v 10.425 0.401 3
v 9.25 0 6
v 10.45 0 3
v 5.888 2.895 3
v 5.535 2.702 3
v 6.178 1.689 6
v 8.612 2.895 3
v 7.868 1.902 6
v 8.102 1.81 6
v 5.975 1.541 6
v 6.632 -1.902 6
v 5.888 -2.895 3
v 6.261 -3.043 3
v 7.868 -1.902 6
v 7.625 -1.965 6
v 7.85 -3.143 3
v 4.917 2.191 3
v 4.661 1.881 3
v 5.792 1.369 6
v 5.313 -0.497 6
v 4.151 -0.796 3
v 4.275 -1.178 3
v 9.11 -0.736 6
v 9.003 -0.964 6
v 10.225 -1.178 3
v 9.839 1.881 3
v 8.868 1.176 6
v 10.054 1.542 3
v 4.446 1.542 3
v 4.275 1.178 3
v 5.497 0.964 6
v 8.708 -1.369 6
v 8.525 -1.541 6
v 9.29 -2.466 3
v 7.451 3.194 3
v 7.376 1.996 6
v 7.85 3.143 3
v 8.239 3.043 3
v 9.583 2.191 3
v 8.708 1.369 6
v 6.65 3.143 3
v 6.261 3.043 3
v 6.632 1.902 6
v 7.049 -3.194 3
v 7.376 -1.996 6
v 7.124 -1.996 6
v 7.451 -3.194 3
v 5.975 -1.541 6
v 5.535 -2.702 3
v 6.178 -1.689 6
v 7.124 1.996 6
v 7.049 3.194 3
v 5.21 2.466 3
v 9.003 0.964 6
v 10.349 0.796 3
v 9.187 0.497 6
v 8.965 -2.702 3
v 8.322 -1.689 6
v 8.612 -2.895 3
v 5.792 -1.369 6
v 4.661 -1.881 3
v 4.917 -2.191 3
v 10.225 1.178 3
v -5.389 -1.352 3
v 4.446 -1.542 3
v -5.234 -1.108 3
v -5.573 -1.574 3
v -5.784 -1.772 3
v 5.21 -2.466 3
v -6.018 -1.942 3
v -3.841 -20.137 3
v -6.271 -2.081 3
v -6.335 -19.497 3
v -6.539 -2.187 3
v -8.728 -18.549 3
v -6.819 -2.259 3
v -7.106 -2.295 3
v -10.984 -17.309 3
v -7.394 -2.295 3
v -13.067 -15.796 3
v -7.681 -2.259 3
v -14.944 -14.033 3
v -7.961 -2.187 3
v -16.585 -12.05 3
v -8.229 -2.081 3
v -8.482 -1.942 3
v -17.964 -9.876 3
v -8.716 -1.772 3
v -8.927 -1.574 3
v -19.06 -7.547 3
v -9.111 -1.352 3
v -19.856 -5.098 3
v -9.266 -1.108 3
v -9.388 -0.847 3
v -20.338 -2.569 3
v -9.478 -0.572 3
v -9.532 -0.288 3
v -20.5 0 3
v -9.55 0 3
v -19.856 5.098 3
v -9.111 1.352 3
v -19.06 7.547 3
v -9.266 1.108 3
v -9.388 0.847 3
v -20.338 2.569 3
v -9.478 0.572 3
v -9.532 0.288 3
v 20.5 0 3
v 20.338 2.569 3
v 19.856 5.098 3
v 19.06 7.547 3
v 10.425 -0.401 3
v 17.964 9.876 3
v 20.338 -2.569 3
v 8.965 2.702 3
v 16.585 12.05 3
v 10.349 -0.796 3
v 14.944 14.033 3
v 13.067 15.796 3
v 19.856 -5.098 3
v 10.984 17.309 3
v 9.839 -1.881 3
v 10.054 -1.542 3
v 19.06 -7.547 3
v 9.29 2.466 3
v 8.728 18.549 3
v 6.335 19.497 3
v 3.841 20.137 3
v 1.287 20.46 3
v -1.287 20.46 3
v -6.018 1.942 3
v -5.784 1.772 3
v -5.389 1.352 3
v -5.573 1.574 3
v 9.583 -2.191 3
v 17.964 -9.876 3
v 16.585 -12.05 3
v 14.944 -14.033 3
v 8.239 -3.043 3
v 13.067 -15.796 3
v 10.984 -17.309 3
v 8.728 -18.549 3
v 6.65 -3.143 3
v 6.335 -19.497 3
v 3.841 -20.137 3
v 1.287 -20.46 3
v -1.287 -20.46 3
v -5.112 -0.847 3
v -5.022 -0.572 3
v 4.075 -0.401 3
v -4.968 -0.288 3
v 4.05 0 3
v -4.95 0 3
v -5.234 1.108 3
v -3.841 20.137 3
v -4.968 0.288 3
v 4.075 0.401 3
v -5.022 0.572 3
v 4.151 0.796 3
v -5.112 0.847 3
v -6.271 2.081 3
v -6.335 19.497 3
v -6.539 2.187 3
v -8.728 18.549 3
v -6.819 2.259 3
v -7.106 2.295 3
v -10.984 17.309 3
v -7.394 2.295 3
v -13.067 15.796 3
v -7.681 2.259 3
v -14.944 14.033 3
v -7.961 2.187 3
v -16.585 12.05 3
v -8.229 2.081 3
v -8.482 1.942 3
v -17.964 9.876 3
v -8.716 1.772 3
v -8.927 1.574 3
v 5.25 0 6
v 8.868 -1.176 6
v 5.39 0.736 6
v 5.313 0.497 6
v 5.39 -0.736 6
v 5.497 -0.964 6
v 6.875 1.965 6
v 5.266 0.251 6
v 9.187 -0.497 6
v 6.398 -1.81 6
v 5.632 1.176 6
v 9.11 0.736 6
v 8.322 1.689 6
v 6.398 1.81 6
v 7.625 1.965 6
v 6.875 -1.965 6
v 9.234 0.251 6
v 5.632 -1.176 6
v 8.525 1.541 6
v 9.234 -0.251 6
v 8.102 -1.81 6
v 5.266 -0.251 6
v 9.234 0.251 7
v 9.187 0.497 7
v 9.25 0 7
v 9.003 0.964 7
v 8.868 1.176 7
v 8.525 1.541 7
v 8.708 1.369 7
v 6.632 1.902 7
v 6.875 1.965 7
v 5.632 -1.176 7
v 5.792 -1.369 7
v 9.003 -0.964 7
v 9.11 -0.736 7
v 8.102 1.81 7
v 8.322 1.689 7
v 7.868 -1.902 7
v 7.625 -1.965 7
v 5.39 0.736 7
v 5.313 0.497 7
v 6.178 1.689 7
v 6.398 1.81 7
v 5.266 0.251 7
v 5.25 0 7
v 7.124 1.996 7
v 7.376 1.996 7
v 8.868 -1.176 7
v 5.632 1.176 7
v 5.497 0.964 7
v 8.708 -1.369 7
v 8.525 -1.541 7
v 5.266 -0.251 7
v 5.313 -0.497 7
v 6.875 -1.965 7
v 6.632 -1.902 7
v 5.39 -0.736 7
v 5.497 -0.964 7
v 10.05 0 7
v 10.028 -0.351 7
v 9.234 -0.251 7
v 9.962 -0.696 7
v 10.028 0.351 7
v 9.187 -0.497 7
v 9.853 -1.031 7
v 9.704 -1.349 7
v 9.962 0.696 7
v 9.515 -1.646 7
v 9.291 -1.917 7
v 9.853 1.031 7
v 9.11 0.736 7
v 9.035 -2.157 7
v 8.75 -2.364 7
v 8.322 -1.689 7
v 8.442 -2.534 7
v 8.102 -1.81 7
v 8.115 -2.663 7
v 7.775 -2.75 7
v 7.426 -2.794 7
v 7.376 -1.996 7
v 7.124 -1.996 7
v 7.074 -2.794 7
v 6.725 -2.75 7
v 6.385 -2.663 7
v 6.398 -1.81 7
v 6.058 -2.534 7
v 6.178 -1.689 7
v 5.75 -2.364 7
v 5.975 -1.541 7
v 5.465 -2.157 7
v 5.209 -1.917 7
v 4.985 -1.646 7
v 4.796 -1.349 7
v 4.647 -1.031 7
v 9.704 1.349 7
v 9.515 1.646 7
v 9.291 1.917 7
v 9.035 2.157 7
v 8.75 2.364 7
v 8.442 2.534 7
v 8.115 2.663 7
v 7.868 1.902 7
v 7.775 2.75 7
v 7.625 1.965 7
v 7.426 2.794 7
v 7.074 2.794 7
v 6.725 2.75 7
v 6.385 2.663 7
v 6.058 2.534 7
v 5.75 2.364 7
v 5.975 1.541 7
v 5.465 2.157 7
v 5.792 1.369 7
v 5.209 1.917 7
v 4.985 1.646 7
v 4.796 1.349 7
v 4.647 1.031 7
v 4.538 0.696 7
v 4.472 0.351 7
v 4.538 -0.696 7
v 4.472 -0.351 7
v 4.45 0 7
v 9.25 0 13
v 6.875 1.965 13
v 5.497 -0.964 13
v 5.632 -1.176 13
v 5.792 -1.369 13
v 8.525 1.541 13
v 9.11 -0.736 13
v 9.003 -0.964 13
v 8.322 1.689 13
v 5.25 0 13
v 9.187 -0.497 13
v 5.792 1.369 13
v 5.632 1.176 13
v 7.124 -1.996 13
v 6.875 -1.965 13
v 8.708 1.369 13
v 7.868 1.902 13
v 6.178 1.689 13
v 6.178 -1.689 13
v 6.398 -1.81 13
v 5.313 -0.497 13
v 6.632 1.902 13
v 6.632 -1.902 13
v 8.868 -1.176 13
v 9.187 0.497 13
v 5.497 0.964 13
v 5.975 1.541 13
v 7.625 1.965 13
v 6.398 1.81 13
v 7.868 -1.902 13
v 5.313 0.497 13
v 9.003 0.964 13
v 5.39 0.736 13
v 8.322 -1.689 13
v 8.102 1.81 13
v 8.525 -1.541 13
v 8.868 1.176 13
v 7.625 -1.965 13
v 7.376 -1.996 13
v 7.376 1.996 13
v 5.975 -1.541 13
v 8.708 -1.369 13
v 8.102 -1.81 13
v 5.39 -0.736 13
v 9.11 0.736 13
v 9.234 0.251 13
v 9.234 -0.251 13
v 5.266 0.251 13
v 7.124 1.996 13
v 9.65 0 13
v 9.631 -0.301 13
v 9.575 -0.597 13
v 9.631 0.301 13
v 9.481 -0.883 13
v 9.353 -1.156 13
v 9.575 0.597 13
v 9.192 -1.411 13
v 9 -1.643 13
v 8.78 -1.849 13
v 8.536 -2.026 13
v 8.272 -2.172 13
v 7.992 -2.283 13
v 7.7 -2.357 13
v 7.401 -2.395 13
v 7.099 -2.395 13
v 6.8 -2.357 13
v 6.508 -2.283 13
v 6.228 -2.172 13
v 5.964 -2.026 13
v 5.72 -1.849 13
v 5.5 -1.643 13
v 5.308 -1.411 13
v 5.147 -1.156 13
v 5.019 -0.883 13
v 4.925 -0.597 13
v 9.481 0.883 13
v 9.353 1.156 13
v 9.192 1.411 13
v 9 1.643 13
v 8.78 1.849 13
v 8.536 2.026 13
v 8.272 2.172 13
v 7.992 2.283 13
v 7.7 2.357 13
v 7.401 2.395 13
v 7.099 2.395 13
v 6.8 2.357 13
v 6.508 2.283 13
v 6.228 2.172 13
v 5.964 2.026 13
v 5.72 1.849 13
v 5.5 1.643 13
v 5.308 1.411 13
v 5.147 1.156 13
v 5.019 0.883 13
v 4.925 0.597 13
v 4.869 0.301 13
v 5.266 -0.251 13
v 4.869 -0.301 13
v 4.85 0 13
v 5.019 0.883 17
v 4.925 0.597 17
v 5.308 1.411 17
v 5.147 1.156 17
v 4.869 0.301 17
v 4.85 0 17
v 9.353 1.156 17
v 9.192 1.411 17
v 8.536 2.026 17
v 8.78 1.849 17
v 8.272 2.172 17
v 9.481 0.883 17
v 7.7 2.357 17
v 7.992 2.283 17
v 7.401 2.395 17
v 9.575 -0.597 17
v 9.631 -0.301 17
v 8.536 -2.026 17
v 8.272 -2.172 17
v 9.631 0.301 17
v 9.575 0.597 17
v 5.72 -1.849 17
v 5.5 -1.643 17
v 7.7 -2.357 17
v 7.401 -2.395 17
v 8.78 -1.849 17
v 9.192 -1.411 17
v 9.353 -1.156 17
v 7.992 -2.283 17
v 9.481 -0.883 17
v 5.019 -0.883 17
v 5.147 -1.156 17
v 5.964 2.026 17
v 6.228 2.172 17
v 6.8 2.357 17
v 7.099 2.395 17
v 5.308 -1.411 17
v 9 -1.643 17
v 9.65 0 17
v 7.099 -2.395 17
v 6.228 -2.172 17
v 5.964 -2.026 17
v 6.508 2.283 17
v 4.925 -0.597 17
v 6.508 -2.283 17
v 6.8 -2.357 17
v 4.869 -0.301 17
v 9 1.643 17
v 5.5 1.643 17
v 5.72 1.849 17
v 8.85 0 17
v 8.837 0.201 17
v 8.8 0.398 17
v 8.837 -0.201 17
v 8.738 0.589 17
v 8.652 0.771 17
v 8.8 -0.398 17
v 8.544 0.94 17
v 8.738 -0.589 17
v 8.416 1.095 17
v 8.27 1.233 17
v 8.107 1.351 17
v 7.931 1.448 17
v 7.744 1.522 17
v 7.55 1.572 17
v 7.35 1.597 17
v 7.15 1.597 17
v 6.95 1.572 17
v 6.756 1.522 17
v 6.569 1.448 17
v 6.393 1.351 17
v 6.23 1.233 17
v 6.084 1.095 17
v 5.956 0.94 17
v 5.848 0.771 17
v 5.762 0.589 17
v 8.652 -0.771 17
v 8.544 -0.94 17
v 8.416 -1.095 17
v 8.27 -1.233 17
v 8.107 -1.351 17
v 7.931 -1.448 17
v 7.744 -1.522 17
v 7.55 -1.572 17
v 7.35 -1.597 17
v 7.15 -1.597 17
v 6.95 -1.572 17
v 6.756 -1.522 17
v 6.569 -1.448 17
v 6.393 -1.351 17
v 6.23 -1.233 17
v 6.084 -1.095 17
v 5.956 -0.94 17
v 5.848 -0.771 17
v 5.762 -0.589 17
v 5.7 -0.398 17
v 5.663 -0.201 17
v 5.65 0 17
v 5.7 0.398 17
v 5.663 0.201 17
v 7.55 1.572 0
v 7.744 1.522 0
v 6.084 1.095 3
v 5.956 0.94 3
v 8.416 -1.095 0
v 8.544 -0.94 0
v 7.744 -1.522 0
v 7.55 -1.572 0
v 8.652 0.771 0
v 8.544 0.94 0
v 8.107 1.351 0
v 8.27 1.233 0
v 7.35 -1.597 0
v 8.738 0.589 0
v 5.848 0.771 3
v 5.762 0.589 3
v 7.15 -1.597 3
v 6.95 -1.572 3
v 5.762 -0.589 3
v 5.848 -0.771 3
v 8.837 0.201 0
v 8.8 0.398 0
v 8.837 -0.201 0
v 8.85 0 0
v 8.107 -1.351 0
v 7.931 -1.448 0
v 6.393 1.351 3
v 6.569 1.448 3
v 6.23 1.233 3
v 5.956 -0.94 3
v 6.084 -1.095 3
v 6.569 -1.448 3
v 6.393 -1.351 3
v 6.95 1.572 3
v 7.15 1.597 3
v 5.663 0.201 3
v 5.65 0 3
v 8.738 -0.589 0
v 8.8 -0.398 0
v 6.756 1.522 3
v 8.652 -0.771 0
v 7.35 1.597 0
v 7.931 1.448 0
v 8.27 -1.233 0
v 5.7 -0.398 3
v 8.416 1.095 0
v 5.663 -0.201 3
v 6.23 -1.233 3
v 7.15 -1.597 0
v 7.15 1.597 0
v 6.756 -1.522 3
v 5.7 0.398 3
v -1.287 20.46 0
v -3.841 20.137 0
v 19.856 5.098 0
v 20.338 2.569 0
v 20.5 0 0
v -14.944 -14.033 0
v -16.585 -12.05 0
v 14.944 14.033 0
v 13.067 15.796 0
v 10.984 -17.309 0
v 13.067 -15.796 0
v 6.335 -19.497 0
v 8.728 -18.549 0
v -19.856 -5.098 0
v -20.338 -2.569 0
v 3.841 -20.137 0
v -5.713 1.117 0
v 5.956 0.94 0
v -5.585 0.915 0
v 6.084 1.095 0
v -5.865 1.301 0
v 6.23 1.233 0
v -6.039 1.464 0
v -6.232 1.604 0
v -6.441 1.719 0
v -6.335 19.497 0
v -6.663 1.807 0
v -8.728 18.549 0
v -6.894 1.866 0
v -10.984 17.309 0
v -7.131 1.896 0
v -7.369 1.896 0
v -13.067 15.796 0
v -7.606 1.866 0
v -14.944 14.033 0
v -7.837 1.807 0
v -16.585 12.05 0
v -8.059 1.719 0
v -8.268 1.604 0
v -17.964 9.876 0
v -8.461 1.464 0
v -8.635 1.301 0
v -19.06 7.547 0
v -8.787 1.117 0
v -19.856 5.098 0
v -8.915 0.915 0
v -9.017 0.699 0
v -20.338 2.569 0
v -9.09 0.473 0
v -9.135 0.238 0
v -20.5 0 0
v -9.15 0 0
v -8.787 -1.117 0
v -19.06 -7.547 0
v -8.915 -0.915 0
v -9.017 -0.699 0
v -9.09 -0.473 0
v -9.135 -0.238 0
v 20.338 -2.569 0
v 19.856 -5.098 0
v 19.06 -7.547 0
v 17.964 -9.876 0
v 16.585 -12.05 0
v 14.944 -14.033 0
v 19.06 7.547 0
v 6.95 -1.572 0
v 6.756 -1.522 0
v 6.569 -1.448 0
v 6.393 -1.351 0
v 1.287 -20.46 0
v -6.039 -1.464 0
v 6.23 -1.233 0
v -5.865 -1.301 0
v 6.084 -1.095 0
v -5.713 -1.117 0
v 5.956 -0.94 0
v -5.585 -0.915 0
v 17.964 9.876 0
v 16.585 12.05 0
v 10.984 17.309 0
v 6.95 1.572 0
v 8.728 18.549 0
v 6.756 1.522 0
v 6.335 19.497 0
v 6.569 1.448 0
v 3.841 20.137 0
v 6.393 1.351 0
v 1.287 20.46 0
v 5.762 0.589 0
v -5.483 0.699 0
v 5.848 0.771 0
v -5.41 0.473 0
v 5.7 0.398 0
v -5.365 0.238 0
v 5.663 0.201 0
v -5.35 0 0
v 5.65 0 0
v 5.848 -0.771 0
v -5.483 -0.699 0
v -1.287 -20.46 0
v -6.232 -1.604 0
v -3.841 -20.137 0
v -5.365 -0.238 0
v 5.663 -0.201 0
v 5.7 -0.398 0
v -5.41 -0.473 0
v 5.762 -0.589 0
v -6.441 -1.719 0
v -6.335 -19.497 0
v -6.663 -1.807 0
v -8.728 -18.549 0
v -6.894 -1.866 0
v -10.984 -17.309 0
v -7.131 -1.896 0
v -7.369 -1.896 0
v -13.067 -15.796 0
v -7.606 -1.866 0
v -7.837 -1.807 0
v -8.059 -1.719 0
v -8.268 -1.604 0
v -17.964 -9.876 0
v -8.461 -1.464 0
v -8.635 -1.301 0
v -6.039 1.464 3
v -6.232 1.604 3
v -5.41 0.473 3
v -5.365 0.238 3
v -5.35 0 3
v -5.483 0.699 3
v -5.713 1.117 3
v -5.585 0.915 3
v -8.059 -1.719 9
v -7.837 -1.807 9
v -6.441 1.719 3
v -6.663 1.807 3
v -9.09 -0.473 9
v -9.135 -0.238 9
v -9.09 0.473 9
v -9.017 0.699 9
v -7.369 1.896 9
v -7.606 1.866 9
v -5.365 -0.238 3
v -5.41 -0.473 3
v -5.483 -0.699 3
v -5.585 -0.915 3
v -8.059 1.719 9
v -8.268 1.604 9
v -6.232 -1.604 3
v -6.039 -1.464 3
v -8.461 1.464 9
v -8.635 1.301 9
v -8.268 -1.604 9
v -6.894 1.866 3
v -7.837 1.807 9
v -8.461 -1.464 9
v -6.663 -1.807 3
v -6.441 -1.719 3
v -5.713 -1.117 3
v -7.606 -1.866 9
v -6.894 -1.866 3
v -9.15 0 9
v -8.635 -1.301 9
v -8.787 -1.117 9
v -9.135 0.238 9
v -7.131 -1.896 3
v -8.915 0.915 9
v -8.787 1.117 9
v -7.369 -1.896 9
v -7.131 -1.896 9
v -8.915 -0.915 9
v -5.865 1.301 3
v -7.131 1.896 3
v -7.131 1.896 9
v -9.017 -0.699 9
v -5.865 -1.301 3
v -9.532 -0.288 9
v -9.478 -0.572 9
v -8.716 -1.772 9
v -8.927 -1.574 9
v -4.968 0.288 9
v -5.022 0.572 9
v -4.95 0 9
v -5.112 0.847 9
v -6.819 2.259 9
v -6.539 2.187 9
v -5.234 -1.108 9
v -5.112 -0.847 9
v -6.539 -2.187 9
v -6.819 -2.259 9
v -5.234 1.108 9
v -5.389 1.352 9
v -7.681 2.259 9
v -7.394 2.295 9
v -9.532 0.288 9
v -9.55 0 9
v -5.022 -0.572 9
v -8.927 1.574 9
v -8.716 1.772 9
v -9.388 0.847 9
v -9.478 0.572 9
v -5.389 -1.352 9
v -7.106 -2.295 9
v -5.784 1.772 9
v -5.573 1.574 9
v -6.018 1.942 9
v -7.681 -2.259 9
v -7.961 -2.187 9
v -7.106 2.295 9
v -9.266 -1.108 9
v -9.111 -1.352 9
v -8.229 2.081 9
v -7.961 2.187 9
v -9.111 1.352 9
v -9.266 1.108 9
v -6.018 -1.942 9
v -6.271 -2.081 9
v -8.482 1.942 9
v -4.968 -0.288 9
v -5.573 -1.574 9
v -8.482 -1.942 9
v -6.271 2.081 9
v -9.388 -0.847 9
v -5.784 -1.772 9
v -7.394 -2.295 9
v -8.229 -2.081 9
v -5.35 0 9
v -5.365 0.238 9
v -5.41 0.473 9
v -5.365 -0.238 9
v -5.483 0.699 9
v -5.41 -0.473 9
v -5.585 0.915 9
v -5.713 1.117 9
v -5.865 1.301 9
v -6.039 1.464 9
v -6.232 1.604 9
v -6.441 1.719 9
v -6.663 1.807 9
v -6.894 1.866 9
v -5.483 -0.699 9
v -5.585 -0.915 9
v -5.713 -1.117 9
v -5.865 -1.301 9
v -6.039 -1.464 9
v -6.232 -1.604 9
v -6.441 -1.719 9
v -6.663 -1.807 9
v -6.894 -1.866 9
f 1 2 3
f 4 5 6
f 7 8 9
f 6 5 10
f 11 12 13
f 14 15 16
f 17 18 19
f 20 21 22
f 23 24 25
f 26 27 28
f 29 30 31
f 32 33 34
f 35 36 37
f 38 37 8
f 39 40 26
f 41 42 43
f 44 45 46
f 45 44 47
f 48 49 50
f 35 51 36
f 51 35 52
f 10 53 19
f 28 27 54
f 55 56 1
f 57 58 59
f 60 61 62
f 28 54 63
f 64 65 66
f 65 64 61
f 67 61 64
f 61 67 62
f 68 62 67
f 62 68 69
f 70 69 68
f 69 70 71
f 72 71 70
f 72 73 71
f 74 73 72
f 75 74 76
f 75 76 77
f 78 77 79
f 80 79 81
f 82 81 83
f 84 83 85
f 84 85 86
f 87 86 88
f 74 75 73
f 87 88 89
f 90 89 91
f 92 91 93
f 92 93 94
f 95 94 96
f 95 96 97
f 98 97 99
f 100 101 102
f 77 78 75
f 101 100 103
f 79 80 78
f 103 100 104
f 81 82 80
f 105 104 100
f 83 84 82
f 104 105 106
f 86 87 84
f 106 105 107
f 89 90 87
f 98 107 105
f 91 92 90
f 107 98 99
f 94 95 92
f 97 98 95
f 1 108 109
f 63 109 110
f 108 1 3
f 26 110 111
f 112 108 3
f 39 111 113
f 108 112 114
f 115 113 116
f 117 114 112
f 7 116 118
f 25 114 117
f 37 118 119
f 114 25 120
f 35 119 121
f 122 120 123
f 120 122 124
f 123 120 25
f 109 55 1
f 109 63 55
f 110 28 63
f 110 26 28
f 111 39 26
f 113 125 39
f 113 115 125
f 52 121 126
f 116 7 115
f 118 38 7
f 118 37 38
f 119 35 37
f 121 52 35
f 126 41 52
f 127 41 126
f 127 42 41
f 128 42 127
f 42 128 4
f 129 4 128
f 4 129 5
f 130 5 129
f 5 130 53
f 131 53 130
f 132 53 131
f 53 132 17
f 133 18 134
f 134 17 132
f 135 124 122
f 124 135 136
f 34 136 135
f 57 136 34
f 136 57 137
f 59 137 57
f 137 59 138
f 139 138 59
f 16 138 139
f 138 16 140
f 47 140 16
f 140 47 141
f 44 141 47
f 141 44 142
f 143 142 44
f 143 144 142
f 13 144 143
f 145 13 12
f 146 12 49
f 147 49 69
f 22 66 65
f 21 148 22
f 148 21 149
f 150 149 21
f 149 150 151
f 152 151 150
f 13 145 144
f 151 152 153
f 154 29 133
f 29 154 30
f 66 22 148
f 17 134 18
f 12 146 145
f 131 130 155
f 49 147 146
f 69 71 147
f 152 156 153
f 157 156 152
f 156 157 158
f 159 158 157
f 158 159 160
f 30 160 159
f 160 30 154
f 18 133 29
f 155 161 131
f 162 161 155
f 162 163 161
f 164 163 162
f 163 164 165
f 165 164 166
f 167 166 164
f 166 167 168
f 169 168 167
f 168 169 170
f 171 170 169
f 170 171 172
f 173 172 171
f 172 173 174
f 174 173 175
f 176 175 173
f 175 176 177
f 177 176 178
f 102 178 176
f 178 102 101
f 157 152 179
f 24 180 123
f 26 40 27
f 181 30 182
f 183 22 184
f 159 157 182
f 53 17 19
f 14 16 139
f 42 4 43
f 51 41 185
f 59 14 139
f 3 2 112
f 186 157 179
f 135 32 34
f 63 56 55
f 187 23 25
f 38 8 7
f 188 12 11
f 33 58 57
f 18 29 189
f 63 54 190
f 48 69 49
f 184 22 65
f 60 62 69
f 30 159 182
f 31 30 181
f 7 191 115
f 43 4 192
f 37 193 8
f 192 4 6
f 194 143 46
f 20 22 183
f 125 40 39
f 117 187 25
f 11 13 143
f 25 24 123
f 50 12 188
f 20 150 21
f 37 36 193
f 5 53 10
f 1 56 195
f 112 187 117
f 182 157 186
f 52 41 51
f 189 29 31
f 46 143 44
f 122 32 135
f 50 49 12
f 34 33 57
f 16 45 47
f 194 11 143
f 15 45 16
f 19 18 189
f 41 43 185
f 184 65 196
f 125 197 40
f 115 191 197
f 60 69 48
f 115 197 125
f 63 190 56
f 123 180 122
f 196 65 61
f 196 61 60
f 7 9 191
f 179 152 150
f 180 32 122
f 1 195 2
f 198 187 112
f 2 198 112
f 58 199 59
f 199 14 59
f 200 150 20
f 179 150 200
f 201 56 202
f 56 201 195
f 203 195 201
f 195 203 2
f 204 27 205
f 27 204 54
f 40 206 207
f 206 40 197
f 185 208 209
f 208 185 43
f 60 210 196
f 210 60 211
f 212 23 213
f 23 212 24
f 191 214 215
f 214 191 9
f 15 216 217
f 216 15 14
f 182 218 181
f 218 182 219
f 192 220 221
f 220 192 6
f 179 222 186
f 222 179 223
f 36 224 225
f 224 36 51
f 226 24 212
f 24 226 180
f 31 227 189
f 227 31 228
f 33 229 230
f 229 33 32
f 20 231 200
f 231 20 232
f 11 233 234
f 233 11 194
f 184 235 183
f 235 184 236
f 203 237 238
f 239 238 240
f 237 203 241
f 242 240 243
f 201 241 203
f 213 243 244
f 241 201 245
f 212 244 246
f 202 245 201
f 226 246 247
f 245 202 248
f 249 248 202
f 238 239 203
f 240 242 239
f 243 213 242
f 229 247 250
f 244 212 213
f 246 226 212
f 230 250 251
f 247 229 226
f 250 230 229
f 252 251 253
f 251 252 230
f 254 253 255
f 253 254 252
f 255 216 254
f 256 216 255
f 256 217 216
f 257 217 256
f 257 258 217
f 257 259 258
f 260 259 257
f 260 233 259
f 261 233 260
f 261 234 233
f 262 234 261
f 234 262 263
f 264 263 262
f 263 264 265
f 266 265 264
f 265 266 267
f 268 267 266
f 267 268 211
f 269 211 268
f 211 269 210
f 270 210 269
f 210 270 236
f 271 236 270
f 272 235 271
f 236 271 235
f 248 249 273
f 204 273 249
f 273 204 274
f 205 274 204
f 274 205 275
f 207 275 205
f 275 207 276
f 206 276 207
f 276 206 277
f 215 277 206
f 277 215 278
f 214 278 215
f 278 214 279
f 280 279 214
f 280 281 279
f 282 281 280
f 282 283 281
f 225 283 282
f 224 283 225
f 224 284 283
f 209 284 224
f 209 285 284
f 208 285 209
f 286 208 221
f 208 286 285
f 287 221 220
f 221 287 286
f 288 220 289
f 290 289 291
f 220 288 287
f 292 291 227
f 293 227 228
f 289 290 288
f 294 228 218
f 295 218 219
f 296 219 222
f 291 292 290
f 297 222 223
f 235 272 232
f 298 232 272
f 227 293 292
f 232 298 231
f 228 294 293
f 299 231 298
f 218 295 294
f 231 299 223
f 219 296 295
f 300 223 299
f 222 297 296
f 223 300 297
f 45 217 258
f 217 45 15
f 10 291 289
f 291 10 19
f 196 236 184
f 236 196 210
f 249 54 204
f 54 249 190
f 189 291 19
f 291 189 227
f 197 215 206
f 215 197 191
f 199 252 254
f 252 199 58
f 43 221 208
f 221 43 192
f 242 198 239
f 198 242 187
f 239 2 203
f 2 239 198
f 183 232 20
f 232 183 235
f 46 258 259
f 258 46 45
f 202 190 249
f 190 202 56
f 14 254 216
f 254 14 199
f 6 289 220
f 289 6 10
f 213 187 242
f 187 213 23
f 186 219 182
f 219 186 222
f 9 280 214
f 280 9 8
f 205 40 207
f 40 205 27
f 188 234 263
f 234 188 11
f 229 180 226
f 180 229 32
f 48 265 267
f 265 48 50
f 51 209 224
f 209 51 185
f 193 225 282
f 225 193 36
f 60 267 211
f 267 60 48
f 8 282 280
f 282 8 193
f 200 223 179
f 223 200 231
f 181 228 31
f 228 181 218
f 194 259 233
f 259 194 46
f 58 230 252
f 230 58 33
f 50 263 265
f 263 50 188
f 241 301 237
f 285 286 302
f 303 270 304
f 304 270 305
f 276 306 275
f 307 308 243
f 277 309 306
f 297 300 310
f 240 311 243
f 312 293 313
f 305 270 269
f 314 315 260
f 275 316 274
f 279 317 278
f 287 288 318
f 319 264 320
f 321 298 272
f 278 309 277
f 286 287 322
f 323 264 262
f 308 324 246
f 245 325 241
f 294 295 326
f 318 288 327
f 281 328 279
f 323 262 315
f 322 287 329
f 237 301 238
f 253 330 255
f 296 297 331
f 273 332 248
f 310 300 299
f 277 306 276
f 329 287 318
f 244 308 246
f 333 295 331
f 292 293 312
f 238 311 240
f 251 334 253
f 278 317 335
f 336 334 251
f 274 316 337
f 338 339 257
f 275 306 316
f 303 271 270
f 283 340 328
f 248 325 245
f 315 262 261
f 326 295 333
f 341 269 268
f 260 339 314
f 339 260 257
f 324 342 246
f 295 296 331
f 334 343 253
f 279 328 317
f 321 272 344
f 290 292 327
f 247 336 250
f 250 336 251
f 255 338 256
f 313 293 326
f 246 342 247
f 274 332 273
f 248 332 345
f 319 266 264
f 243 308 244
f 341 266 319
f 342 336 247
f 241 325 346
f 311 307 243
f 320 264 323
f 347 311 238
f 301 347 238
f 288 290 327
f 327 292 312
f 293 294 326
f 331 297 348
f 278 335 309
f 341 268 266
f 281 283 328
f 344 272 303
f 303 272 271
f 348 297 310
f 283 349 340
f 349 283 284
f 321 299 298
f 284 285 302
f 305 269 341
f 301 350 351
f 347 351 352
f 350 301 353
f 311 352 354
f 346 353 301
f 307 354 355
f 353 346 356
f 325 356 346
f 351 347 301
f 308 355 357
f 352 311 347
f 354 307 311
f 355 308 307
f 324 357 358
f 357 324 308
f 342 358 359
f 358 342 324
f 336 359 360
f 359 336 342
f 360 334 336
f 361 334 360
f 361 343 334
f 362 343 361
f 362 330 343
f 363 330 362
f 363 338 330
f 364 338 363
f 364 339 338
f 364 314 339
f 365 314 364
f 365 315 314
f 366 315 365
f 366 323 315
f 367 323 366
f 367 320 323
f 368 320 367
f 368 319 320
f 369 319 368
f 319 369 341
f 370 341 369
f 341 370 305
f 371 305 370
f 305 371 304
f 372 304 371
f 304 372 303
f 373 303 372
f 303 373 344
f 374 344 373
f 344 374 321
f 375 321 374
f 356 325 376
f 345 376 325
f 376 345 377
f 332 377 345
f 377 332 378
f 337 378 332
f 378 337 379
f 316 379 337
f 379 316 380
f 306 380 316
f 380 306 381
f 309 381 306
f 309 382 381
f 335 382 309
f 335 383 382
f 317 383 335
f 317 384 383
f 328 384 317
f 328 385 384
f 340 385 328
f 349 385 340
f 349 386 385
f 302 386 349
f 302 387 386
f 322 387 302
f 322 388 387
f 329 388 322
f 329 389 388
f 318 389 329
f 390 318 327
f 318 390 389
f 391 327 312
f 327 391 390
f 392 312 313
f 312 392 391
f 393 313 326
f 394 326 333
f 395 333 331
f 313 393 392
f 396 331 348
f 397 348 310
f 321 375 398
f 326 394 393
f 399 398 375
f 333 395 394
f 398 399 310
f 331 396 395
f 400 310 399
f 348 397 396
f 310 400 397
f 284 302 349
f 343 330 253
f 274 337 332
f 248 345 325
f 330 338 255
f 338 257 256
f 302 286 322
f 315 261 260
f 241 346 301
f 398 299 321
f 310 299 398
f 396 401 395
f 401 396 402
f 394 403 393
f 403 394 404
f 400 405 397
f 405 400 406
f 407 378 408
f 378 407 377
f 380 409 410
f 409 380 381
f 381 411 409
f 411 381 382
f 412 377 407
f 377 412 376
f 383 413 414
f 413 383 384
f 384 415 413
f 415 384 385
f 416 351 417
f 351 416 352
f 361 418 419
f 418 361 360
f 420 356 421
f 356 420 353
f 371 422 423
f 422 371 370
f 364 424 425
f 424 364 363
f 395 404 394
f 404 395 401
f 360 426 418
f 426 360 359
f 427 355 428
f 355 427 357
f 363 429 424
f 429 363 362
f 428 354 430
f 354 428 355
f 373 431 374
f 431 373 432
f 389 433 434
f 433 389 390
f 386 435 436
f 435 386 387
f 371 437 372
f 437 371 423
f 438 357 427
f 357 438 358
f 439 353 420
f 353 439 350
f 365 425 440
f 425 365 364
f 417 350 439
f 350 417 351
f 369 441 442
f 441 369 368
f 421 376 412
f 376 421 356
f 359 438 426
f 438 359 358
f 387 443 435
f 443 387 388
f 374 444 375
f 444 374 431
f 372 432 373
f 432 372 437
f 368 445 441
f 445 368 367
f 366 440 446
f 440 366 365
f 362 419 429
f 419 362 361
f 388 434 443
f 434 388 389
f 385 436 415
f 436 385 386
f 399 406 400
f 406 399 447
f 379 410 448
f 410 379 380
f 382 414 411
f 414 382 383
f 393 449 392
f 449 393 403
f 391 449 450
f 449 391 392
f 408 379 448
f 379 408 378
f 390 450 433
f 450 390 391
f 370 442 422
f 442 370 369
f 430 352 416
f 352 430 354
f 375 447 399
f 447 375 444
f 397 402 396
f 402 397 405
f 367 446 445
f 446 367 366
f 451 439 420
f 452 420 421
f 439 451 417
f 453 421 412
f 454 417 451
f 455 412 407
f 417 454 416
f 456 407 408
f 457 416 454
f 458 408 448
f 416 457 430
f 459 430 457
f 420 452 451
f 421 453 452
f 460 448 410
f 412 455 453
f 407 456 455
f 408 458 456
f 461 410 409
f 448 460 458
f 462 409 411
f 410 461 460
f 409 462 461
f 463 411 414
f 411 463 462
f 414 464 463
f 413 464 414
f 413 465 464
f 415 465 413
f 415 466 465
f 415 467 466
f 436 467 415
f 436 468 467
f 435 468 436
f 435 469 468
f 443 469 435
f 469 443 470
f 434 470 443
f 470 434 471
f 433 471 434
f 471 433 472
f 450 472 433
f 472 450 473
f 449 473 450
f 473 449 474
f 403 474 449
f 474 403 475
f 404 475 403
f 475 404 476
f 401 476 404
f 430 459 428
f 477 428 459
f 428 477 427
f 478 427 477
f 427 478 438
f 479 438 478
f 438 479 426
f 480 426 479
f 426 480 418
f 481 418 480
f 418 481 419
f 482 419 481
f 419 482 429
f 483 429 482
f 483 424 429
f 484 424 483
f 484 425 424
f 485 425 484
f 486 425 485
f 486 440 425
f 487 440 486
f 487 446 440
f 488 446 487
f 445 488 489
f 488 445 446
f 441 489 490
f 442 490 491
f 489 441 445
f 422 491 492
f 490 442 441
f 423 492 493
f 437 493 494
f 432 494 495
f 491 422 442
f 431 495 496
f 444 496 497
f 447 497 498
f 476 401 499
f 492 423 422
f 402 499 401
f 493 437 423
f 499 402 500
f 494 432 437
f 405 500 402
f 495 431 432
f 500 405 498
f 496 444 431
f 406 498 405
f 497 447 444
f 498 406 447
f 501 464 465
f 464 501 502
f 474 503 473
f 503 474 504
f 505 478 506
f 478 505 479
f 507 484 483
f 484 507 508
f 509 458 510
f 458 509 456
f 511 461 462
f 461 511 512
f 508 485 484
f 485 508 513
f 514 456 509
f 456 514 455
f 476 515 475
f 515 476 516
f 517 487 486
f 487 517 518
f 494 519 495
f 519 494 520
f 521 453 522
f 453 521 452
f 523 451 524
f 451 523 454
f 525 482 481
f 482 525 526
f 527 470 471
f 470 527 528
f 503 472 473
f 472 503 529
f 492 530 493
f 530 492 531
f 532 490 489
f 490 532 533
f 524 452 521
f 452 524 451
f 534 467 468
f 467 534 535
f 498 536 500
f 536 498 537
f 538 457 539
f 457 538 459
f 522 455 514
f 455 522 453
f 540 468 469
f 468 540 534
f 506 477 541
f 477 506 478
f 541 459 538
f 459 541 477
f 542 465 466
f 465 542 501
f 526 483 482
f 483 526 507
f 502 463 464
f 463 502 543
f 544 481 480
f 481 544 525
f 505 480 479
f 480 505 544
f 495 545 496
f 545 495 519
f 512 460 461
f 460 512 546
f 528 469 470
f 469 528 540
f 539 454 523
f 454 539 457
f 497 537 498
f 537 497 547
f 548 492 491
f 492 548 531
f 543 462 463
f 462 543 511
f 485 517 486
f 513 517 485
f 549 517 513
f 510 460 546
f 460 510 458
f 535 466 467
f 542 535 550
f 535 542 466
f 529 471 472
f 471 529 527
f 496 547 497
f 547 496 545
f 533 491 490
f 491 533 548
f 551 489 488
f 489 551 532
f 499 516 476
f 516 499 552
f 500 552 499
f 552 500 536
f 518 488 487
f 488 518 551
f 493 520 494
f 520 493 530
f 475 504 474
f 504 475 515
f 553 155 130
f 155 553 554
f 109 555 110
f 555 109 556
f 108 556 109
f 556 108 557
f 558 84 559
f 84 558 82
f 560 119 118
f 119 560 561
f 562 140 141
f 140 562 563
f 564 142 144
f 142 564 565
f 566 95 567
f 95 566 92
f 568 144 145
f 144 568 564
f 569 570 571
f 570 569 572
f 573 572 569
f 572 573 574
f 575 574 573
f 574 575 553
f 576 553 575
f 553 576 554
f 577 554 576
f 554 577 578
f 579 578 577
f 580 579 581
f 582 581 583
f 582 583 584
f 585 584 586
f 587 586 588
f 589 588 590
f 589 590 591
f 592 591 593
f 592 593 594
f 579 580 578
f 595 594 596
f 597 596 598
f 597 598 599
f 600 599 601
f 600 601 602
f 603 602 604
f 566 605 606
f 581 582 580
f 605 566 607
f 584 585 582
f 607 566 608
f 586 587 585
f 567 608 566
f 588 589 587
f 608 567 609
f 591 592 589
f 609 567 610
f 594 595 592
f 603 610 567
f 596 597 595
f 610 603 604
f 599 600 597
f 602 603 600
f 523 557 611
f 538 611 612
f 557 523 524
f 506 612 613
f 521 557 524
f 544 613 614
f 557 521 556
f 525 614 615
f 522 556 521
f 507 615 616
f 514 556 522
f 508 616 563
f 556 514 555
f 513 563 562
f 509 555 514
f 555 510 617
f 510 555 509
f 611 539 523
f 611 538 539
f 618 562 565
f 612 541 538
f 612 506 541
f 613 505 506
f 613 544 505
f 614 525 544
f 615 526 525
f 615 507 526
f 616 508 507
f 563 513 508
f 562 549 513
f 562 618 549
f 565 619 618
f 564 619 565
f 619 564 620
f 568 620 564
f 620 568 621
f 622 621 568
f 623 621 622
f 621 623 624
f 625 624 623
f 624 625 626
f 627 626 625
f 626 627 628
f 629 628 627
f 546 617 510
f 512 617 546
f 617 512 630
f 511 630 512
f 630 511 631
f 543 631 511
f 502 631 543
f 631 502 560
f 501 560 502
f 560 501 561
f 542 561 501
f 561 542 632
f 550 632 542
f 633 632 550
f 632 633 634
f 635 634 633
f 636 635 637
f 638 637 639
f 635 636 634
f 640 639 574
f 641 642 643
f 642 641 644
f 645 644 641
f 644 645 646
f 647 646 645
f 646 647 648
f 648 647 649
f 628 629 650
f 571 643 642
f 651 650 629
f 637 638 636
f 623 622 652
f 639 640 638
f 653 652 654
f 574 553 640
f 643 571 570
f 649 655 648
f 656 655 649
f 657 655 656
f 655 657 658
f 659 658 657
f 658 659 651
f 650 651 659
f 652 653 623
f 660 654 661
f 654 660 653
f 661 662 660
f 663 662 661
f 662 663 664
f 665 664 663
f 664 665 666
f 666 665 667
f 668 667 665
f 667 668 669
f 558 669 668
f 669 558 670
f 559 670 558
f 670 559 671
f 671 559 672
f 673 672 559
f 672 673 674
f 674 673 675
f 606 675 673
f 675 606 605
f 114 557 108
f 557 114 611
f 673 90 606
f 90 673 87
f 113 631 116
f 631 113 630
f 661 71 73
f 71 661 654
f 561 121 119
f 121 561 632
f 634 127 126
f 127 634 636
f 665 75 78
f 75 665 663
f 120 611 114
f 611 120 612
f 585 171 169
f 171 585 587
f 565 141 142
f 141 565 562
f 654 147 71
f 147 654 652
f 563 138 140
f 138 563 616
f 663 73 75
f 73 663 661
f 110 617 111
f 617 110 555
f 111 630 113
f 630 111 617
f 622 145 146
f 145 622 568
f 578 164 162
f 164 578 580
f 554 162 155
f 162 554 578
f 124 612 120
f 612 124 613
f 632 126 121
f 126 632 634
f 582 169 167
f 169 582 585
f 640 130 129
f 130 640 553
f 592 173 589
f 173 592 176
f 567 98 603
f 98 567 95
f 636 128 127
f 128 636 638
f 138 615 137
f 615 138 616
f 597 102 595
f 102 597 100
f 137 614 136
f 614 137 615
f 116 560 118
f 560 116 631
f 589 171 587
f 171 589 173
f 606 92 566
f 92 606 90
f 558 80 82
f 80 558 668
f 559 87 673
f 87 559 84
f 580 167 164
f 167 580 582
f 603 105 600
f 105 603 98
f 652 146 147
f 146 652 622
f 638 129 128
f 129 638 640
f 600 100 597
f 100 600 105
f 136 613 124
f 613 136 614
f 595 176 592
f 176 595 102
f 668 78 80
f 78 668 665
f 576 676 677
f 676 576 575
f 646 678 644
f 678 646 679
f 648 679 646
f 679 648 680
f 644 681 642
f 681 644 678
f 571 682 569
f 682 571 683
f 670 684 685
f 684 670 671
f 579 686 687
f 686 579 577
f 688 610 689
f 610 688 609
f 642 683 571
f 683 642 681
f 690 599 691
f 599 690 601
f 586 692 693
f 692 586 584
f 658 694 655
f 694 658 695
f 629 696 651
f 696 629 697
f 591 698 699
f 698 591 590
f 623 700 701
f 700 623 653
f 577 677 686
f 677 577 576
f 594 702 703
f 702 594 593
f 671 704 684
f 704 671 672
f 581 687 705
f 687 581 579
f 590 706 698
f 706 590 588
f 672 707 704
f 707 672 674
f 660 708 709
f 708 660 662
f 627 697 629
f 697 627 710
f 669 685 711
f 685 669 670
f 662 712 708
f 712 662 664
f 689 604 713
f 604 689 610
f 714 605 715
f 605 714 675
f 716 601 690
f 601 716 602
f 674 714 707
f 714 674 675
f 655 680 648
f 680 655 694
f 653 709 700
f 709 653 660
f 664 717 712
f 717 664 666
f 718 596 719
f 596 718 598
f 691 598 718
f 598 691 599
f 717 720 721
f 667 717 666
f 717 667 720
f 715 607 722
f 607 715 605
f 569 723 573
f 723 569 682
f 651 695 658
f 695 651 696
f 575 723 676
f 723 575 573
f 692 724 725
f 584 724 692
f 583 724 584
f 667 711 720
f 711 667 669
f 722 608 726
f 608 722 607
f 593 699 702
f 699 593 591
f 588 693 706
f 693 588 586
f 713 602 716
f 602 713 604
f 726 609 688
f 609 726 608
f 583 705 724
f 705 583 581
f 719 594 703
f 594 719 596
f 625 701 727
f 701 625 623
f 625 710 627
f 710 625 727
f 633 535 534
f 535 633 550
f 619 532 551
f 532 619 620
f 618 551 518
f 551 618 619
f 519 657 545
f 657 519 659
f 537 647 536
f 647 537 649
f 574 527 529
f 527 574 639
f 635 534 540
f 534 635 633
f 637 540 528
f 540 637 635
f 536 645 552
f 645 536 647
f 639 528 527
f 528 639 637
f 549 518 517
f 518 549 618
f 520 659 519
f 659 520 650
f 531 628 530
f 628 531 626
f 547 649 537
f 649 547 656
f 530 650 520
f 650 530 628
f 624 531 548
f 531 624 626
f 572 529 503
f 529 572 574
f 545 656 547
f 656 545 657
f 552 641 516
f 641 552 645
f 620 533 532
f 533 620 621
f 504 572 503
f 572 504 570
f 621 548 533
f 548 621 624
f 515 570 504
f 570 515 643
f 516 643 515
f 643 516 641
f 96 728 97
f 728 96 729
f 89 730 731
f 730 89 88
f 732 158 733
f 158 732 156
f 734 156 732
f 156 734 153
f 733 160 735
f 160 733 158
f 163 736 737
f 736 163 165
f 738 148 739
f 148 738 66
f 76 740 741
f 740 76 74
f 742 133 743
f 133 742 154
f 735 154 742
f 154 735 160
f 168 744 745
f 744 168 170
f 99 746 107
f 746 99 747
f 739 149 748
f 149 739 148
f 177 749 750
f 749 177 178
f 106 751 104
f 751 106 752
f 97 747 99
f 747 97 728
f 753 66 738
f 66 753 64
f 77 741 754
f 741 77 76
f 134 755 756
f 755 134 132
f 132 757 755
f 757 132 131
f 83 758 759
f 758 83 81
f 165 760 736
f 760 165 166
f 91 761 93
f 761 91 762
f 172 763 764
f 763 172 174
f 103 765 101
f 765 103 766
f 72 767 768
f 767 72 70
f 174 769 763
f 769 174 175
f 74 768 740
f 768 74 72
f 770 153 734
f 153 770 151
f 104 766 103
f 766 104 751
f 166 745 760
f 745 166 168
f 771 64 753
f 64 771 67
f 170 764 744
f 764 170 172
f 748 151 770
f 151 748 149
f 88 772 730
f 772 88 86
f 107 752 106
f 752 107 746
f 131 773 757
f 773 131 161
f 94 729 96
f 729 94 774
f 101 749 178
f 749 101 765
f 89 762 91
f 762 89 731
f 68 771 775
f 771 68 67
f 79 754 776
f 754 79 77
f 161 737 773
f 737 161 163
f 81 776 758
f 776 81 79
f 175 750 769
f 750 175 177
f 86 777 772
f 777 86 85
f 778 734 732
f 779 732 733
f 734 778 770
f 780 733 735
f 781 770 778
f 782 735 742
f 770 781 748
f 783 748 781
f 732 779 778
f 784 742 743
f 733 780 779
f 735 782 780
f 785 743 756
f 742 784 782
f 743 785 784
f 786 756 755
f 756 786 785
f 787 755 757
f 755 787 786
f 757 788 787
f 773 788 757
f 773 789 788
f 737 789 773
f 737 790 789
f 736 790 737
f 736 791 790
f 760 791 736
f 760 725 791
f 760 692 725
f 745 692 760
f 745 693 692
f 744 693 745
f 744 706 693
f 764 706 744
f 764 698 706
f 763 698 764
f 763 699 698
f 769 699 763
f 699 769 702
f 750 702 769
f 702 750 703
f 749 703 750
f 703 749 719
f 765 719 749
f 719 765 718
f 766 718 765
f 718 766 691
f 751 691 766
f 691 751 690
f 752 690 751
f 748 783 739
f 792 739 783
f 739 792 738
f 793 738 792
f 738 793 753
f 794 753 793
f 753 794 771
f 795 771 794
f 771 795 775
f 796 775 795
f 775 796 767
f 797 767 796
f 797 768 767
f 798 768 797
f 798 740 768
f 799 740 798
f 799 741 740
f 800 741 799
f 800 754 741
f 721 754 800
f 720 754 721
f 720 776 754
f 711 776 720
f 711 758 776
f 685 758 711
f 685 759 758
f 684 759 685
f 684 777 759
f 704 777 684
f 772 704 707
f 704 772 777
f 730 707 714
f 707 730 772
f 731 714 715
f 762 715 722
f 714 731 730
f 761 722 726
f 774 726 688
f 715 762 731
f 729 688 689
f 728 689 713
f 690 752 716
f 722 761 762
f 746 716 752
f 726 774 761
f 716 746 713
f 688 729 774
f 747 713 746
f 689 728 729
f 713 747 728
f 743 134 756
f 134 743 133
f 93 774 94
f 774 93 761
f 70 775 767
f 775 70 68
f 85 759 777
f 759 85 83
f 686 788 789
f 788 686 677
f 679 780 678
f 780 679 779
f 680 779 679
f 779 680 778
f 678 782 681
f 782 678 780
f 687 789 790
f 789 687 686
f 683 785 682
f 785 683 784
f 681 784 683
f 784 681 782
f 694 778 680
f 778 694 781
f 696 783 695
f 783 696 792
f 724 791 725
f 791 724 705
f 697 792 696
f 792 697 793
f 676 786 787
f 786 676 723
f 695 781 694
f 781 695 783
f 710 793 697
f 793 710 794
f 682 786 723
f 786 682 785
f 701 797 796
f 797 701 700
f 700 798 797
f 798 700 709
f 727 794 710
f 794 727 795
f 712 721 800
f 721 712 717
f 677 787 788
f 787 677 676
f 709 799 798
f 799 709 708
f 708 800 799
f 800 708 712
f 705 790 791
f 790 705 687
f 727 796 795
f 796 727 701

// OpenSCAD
$fn=50;
tube = 3.2/2;
insert = 3.2/2+0.3;
thread = 41/2;
neck = 29/2;
thickness = 3;
margin = 0.4;

module spike(){
	od = 4/2;//outer diameter 
	difference(){
		union(){
			cylinder(3,tube+margin*4,tube+margin);
			translate([0,0,3]){ 	
				cylinder(1,tube+margin,tube+margin);
				}
			translate([0,0,4]){
				cylinder(6,tube+3*margin,tube+margin);
			}
			translate([0,0,10]){
				cylinder(4,tube+2*margin,tube+2*margin);
			}
		}
	cylinder(14,tube,tube);
	}
}

module tube_insert(){
    difference(){
	  cylinder(6,insert+margin,insert+margin);
	  cylinder(6,insert,insert);
    }
}


module cover(){
	difference(){
		union(){
			//cylinder(thickness,neck,neck);
			translate([0,0,0]){
				cylinder(thickness,thread,thread);
			}
		}
		translate([-neck/2,0,0]){
			cylinder(2*thickness,insert,insert);

		}
		translate([neck/2,0,0]){
			cylinder(2*thickness,tube,tube);
		}
	}
}

module waste(){
	cover();		
	translate([-neck/2,0,thickness]){
			tube_insert();
			}
	translate([neck/2,0,thickness]){
			spike();
			}	
}
waste();
